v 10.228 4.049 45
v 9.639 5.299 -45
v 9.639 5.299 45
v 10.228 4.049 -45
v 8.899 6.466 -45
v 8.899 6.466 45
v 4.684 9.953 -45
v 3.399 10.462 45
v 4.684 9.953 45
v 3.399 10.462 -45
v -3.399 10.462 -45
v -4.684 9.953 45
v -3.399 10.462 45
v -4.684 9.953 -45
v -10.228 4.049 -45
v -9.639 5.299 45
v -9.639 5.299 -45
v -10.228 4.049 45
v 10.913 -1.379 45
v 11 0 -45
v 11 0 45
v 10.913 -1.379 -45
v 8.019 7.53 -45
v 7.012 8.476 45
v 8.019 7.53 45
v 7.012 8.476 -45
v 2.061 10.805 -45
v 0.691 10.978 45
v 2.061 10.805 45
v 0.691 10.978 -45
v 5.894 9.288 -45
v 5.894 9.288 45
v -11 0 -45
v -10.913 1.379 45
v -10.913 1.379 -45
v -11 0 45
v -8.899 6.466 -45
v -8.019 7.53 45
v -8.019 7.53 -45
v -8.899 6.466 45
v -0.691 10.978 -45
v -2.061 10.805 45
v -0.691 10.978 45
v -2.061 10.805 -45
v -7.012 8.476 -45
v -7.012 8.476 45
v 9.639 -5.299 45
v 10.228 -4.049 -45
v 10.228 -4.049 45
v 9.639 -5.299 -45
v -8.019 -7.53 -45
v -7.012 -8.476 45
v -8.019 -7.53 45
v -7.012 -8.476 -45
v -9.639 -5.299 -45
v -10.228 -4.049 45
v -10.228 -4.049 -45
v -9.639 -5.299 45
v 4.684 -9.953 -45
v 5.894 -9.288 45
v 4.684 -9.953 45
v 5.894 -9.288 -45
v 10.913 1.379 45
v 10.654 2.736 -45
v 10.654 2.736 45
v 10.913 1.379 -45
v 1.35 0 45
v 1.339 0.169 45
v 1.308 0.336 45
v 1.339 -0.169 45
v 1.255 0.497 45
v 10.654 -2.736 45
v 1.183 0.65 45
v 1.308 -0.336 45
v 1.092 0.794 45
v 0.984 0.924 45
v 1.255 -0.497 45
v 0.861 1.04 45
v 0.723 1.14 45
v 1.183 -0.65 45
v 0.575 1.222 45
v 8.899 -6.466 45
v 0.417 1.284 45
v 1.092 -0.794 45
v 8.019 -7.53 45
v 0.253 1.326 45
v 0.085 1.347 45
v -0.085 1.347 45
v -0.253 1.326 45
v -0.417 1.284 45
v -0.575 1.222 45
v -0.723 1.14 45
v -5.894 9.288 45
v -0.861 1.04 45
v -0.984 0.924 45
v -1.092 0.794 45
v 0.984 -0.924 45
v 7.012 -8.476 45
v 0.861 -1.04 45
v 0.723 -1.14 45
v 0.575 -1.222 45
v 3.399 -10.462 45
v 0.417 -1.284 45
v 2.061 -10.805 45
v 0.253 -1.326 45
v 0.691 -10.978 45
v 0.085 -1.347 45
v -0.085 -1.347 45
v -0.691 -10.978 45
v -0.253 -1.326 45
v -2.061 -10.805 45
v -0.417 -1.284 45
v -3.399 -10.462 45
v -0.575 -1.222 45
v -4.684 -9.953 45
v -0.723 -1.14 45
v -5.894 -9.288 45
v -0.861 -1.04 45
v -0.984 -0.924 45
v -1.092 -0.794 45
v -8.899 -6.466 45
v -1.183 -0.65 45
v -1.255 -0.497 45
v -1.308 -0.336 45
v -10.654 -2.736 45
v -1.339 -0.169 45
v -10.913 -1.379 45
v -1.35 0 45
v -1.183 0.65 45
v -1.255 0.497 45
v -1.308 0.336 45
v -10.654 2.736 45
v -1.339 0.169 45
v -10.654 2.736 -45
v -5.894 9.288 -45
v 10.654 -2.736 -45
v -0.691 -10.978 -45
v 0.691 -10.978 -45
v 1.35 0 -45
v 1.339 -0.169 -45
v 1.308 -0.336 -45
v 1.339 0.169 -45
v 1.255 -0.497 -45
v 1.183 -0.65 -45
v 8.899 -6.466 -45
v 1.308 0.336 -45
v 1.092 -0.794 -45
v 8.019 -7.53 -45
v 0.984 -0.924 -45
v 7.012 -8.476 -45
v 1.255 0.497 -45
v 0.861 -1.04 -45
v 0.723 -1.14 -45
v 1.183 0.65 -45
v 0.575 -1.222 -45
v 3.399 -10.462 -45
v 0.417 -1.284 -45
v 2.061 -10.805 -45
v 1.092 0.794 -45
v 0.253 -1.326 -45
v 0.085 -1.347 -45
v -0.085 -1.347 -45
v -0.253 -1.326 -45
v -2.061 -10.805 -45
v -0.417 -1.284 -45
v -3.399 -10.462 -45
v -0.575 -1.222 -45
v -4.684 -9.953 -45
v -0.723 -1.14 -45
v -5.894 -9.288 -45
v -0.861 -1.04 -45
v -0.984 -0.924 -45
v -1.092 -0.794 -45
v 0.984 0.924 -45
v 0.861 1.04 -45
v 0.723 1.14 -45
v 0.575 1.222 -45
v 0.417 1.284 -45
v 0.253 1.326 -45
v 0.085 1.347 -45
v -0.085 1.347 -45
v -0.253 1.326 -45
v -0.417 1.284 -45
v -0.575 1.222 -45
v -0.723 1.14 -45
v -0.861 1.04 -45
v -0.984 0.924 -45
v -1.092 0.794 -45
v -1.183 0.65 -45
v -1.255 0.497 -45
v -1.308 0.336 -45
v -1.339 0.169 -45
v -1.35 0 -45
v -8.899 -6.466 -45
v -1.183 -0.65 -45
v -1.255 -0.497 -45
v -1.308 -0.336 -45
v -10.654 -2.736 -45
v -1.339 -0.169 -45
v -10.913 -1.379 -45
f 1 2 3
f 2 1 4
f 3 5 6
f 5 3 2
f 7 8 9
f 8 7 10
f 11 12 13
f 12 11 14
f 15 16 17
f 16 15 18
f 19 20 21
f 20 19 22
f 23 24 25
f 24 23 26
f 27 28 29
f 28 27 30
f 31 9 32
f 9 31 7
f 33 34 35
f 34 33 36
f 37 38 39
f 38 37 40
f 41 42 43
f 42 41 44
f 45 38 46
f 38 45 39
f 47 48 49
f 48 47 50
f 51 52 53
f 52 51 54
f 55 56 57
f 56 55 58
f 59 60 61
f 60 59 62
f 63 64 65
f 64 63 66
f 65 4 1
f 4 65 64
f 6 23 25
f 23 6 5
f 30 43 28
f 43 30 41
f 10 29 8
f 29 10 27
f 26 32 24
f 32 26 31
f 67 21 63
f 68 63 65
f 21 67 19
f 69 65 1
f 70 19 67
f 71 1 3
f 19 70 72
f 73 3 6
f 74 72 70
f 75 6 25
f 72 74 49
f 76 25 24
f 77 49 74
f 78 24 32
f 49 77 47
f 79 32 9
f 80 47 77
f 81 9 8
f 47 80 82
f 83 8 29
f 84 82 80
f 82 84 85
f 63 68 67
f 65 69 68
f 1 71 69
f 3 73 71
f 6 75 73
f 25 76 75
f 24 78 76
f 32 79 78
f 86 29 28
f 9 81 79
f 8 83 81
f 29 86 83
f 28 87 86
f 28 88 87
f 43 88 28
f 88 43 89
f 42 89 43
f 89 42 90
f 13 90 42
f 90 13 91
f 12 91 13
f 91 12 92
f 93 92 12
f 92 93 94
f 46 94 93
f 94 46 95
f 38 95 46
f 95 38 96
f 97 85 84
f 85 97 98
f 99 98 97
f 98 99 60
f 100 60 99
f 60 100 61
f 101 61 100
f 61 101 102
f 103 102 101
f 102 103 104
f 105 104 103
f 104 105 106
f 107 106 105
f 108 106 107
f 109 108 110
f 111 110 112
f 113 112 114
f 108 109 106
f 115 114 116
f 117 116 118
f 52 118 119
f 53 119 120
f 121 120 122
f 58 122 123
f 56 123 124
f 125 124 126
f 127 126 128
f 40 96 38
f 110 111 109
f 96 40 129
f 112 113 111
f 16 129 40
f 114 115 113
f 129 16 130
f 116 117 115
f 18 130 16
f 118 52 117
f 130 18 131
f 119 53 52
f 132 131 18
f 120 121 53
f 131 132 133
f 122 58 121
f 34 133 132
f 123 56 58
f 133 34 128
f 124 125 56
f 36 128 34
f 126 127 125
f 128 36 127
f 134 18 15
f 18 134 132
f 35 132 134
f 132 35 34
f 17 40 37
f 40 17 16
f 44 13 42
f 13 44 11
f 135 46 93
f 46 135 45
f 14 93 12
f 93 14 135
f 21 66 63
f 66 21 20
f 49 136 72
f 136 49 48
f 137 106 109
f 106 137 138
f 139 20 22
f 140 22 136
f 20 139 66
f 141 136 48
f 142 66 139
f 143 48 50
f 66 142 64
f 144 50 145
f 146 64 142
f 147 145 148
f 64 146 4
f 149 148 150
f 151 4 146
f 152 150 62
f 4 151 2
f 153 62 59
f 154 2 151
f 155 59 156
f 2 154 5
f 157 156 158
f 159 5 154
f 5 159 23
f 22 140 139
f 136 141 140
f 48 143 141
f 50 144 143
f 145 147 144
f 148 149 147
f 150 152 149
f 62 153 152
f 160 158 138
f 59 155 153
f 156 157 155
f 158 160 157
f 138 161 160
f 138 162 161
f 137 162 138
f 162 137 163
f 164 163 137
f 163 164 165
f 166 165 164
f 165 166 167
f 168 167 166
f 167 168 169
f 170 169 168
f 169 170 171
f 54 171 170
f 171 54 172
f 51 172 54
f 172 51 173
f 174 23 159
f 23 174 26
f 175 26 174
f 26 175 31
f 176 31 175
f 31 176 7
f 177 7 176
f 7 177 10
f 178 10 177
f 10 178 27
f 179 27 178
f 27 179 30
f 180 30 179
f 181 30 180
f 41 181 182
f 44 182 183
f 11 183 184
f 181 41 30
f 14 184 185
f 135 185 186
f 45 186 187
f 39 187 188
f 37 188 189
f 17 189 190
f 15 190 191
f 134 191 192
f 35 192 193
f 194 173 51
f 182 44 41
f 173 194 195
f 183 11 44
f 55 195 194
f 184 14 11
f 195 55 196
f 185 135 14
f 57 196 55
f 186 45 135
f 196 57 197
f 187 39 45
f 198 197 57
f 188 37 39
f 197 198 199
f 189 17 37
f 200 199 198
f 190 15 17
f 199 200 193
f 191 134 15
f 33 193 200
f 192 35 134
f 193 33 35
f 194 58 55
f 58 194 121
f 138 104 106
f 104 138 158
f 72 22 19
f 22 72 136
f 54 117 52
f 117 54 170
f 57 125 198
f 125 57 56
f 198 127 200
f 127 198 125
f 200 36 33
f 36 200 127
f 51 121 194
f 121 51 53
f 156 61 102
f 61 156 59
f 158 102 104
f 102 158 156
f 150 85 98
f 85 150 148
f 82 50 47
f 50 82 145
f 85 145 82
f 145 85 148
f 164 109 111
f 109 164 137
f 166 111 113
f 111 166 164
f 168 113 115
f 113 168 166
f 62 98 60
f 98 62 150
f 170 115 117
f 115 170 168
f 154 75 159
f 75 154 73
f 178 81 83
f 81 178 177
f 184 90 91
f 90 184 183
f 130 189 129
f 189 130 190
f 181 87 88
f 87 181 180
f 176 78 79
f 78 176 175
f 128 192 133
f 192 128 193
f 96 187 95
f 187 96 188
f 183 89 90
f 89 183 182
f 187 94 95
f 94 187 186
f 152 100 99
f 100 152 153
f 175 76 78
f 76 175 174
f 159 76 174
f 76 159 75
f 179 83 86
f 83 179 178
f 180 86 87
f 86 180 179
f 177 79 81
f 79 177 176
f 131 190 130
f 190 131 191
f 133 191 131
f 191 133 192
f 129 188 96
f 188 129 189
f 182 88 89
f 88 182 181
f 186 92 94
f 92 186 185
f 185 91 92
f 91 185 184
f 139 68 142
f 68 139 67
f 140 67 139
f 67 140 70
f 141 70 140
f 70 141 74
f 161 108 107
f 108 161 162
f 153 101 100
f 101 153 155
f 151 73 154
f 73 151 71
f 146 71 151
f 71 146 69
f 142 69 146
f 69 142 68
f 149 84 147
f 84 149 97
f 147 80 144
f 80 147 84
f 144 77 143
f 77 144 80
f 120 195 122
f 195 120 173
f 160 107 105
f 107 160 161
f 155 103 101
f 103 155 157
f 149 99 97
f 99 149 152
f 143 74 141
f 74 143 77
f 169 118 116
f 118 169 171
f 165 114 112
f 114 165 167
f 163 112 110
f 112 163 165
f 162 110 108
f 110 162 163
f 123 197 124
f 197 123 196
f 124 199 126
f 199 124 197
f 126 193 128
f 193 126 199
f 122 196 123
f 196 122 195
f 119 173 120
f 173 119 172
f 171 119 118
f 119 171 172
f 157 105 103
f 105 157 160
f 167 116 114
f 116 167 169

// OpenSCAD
$fn = 50;


difference() {
	union() {
		translate(v = [0, 0, -45.0000000000]) {
			cylinder(h = 90, r = 11.0000000000);
		}
	}
	union() {
		translate(v = [0, 0, -100.0000000000]) {
			cylinder(h = 200, r = 1.3500000000);
		}
	}
}
